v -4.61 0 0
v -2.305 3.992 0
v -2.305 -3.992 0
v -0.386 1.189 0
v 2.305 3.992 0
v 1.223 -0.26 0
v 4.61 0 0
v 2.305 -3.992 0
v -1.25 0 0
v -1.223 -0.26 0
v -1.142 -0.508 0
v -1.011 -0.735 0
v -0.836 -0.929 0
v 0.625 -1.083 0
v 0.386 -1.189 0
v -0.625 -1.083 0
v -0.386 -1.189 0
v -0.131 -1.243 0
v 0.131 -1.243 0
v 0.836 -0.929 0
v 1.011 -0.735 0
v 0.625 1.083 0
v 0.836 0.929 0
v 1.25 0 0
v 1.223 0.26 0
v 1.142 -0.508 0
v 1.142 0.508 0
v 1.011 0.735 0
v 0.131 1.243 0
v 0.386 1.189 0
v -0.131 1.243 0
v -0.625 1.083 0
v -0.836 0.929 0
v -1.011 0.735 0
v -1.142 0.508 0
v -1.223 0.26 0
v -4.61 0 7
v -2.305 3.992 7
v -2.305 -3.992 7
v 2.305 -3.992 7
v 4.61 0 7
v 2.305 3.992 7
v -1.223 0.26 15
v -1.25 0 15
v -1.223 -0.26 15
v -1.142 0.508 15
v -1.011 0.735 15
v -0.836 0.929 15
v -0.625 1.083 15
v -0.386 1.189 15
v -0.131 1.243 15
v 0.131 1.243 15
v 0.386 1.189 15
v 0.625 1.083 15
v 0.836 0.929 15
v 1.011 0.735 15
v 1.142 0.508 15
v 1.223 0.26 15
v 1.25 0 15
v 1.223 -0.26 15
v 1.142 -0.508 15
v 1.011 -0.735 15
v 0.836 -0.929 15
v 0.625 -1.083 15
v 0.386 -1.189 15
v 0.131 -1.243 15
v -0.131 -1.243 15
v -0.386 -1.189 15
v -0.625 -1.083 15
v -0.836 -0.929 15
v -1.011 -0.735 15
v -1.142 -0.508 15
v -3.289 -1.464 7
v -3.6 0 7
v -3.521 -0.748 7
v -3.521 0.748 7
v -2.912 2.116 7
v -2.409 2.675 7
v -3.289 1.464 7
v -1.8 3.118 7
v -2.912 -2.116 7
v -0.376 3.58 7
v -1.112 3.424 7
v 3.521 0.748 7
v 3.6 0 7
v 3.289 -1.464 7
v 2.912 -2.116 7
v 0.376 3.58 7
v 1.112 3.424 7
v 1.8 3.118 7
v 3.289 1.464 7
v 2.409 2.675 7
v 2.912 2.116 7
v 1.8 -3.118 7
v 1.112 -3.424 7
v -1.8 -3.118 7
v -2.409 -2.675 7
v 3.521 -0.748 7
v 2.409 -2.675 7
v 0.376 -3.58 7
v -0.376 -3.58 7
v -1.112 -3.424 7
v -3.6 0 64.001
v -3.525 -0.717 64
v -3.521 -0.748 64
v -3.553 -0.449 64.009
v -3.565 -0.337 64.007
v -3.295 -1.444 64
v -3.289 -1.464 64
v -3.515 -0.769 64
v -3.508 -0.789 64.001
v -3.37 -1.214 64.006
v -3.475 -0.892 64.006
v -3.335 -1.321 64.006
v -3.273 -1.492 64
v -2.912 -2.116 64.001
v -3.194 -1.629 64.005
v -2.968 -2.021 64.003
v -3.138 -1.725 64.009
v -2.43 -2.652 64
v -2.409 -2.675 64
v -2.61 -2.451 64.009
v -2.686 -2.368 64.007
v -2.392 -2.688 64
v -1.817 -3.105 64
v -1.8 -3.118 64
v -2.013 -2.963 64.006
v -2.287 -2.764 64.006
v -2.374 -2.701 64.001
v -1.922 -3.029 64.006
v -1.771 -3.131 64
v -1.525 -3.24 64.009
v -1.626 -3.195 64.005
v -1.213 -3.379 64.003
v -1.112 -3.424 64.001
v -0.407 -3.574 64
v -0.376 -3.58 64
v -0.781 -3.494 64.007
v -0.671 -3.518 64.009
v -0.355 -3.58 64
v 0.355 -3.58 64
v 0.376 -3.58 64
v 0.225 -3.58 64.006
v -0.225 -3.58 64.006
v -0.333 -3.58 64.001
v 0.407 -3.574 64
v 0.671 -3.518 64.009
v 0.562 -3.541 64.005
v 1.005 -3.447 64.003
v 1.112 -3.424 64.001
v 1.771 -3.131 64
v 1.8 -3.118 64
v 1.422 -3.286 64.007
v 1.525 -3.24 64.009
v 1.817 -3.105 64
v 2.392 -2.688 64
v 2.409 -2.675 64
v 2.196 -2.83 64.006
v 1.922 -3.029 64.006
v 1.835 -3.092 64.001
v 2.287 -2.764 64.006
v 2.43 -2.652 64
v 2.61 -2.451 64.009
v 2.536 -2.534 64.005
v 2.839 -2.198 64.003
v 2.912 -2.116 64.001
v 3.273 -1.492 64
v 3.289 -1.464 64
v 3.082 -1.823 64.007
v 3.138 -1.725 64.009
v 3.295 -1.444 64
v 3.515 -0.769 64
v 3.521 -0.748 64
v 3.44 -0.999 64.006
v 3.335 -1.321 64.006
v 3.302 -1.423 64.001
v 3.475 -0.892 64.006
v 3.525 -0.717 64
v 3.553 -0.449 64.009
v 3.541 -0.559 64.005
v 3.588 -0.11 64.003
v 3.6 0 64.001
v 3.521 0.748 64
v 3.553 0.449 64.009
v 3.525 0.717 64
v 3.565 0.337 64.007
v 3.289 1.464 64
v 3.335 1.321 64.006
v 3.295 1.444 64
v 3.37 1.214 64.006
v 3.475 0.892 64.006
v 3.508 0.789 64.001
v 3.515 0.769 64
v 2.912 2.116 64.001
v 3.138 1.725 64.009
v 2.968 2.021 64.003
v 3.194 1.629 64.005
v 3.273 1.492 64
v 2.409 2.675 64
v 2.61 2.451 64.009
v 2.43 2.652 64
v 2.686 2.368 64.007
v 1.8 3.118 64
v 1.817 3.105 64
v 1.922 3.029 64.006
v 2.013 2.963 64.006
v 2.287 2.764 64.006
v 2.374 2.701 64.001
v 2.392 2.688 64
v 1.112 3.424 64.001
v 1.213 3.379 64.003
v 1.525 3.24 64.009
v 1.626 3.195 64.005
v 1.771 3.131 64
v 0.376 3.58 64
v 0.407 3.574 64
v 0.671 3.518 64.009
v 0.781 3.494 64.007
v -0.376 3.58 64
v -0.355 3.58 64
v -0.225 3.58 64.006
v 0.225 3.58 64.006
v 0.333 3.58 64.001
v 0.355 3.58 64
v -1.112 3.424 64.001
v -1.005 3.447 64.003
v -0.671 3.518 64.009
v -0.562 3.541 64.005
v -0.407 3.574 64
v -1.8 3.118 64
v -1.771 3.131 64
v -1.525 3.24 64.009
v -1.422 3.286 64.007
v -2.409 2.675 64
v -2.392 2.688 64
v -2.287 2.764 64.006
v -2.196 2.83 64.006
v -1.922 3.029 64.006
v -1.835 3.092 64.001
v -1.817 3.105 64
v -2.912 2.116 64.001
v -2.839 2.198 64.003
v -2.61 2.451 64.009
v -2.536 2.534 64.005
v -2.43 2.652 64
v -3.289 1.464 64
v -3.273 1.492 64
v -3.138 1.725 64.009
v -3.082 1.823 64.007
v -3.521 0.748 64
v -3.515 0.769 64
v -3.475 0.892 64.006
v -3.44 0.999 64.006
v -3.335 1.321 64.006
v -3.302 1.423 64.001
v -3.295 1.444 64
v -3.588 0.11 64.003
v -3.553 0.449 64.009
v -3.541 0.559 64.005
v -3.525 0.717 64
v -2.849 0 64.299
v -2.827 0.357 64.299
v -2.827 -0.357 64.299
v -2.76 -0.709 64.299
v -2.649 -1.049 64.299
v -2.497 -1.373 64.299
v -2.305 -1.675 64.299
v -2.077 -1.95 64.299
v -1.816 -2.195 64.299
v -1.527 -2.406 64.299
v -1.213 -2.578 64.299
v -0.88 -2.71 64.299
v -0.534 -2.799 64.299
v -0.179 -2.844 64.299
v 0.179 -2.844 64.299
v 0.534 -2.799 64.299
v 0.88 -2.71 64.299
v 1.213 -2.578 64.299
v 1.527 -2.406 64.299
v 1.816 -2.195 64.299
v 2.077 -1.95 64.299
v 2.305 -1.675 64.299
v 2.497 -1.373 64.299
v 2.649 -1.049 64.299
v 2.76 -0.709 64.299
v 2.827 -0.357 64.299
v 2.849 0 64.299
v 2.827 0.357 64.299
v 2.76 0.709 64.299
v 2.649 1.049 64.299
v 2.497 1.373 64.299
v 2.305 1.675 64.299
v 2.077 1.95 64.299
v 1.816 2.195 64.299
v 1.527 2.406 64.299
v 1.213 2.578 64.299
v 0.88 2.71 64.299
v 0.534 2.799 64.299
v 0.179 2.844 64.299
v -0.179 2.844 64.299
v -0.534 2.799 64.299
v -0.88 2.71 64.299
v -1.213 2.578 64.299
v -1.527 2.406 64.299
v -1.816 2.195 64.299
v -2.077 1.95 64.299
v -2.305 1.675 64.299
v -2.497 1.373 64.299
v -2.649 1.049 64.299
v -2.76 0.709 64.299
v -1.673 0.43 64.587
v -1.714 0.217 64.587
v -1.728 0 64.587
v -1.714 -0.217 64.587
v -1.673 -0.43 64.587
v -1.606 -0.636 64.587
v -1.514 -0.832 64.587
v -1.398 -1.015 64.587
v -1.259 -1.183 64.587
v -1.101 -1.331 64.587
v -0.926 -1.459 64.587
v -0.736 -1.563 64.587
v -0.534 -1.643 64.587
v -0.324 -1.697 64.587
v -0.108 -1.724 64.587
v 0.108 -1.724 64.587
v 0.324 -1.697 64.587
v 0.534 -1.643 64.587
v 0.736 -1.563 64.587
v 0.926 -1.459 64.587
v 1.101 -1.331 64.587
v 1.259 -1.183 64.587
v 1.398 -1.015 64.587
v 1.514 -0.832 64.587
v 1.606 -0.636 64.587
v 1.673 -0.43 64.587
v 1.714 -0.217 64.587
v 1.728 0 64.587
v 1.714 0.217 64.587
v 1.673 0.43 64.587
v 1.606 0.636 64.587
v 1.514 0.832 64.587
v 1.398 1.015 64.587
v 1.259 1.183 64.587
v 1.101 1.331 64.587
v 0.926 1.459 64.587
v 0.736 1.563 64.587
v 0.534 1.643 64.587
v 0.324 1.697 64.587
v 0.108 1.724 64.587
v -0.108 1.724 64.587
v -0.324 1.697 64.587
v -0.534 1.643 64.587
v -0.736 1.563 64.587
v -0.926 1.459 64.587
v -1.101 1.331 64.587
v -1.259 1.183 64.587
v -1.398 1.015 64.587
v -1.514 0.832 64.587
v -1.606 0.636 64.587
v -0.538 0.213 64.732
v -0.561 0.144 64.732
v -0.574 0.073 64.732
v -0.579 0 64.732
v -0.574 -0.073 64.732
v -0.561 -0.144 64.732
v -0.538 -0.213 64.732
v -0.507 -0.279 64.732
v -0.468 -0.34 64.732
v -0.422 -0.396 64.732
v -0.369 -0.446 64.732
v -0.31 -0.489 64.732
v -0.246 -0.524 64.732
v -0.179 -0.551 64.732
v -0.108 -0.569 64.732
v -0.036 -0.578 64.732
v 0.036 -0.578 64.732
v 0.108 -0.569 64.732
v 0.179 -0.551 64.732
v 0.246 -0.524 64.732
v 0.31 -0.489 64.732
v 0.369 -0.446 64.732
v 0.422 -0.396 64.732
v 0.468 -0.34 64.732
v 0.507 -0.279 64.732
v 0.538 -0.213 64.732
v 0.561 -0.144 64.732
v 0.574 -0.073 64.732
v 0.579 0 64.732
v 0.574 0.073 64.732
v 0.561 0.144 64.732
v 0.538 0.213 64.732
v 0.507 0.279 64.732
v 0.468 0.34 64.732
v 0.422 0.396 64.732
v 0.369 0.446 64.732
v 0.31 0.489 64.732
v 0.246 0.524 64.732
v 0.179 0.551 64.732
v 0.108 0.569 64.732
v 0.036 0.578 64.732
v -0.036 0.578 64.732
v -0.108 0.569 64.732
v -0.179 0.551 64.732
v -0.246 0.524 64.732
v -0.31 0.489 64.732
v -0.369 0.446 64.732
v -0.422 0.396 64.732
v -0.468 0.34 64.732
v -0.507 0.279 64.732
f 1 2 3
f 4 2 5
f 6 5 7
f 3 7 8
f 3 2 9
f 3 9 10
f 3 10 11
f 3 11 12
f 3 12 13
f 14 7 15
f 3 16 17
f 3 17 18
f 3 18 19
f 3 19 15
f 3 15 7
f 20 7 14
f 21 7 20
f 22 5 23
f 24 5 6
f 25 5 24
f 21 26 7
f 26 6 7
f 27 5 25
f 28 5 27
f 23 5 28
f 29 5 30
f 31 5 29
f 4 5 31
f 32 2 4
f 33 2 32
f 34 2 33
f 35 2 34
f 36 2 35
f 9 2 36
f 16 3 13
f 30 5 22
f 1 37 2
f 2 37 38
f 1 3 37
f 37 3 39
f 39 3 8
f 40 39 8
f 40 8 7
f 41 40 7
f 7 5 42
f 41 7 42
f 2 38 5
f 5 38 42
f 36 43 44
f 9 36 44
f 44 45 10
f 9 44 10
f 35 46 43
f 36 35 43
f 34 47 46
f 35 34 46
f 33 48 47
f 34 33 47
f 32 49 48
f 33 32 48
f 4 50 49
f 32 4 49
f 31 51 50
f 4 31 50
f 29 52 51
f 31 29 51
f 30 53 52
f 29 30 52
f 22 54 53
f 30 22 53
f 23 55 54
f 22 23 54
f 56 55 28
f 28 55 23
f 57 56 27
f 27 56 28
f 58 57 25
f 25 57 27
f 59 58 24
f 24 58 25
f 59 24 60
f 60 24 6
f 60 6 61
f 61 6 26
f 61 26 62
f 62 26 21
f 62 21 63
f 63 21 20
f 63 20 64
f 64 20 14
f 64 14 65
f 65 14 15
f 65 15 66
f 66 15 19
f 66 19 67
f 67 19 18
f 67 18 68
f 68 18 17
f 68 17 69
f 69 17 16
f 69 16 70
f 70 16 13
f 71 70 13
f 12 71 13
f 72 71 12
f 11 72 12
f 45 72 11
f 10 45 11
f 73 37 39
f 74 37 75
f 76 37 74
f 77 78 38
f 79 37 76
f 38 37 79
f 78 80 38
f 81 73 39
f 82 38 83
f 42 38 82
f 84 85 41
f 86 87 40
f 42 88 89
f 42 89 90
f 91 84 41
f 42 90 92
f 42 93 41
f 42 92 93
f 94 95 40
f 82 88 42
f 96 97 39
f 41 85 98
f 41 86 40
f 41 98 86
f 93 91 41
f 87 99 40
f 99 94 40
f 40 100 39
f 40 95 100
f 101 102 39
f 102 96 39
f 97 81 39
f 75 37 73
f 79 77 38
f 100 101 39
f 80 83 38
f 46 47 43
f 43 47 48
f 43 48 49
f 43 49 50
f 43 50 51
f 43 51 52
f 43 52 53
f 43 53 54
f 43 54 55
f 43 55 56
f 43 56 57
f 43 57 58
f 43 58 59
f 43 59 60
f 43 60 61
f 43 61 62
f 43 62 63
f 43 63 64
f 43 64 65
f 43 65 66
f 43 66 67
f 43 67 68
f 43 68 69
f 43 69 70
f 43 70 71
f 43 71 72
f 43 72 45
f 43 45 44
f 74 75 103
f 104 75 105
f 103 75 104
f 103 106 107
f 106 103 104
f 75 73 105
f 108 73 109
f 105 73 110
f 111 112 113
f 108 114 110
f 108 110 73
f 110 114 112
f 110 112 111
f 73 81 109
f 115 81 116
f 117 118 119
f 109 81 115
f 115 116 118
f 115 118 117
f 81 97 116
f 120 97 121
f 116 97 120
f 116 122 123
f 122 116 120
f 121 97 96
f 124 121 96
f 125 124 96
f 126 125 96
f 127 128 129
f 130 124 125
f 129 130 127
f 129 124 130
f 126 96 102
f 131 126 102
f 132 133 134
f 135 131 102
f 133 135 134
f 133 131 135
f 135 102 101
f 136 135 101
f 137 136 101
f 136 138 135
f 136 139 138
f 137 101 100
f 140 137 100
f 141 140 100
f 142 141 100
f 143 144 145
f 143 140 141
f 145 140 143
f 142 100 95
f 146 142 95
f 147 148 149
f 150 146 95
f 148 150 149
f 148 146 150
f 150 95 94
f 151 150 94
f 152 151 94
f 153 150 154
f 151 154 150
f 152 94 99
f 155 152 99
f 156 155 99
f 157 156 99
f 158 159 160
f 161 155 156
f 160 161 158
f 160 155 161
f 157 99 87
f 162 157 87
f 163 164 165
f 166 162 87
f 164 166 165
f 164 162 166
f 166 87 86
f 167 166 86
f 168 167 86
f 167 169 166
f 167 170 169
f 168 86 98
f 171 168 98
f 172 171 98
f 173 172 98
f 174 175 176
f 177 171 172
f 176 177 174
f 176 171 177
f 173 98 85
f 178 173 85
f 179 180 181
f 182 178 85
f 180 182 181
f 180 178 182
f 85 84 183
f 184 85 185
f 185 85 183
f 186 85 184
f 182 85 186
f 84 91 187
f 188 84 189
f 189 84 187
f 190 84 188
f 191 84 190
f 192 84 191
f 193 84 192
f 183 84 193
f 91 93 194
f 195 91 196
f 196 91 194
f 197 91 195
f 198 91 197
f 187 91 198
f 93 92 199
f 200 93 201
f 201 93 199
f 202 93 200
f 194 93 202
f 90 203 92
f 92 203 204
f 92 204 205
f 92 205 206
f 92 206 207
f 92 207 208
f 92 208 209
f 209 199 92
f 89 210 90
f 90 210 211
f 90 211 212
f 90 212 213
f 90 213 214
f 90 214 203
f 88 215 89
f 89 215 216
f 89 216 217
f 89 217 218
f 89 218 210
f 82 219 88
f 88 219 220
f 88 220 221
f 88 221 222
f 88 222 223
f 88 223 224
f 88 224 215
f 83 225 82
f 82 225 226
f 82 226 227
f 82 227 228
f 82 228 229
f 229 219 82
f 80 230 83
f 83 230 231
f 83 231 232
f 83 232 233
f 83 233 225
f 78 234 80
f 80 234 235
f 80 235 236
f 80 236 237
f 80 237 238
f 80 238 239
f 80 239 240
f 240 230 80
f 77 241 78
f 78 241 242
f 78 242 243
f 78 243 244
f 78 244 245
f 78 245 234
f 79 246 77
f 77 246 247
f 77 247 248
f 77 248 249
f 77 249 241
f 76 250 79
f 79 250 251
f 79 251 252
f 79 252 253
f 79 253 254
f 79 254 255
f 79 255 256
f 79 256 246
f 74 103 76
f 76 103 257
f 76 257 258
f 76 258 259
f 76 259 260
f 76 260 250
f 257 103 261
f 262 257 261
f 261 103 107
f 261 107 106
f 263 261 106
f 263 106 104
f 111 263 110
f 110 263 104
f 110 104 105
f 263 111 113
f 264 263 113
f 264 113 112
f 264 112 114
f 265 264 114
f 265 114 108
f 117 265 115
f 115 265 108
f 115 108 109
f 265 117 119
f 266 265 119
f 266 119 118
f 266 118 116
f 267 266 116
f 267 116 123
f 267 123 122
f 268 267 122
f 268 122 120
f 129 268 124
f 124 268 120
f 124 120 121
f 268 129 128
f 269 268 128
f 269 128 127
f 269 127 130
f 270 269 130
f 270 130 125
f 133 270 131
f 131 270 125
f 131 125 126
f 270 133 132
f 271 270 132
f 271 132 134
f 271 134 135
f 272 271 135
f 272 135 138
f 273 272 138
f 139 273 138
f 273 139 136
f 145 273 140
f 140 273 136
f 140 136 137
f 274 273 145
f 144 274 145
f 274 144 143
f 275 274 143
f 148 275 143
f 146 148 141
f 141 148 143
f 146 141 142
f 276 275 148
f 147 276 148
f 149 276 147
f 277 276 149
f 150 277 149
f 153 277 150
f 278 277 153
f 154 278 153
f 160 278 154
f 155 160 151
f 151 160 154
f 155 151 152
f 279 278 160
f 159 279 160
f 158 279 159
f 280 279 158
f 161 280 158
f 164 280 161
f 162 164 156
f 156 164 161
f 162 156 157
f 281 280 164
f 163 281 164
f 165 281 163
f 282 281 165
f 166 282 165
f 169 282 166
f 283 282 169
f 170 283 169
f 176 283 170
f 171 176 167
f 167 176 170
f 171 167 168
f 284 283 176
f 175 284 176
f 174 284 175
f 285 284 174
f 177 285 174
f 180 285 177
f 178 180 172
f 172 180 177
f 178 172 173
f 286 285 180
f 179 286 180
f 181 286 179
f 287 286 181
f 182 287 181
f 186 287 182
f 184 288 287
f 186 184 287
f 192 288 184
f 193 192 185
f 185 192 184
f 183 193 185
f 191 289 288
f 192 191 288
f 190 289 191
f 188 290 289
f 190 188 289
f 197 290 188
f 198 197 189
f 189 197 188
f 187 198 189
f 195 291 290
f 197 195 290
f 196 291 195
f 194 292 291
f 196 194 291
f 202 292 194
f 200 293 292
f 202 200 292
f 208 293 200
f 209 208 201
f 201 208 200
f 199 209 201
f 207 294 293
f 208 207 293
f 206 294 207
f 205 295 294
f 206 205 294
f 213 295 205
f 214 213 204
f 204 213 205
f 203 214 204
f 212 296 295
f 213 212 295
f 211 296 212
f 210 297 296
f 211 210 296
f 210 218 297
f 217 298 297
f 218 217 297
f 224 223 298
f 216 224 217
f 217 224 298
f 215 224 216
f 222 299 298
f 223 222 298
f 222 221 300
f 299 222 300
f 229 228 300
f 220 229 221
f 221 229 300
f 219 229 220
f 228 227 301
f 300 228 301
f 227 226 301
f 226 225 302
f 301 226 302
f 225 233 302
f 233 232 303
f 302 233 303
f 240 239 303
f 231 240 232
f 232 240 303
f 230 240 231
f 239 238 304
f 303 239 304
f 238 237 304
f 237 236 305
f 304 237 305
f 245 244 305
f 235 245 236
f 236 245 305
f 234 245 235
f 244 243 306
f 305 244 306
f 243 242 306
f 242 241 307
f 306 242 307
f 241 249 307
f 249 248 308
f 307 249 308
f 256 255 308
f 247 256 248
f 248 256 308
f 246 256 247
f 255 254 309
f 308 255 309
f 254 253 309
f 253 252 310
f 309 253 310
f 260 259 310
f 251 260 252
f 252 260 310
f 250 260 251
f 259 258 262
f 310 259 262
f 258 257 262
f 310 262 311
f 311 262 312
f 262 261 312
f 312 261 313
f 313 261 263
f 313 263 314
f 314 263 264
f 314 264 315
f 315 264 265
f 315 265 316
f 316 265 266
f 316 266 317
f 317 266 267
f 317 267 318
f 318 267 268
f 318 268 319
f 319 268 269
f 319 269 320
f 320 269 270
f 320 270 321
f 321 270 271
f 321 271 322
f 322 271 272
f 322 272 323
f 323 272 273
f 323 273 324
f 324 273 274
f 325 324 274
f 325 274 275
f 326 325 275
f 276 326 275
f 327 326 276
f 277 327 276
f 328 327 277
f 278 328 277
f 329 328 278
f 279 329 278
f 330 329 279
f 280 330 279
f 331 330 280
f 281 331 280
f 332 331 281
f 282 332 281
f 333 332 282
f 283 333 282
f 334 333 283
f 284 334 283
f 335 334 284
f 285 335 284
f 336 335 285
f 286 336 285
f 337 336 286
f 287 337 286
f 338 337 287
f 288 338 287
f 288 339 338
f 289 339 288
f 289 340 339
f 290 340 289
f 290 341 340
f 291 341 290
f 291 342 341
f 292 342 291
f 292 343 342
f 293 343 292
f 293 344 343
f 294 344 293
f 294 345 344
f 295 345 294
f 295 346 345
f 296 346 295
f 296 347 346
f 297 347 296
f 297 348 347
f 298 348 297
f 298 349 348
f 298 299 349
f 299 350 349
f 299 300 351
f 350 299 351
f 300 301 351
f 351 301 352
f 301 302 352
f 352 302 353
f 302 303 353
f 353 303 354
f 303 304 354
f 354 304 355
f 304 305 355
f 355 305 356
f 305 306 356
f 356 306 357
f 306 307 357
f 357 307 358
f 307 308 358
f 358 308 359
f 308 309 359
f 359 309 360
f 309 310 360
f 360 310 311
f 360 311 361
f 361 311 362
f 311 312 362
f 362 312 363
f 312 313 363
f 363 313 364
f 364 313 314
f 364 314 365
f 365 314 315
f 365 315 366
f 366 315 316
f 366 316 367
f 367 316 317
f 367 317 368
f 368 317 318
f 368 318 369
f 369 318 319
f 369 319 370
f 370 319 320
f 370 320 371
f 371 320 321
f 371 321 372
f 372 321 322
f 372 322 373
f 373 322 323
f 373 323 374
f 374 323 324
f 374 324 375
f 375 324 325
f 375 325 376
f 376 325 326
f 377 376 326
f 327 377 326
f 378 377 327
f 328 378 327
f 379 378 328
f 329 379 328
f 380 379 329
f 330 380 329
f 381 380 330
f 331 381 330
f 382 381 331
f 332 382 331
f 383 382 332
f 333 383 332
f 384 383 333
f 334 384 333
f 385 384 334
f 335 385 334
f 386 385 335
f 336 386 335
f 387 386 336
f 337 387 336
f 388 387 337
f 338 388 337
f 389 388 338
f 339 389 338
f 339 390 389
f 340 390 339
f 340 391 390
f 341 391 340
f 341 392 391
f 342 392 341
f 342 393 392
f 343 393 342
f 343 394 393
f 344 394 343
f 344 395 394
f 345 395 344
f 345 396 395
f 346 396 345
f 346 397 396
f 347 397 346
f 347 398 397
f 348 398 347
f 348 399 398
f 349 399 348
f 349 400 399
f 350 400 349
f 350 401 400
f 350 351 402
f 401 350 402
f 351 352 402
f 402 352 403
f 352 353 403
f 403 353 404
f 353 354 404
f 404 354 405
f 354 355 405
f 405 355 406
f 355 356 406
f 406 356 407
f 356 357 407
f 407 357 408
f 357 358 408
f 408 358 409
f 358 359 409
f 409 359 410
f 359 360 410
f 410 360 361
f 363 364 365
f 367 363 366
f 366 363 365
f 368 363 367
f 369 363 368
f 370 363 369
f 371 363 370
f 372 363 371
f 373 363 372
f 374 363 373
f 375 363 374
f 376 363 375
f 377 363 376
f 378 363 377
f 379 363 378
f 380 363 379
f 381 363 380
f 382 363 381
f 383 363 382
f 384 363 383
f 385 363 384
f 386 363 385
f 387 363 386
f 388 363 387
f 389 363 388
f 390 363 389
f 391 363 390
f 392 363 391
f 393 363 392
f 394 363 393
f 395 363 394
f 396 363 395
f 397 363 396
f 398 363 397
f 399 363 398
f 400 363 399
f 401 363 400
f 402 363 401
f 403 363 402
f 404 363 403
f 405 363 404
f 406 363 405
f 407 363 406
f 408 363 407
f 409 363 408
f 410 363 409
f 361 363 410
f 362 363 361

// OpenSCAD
difference(){
union(){
cylinder(r=4.61,h=7,$fn=6);
translate([0,0,7])cylinder(r=3.6,h=57,$fn=30);
}
cylinder(r=1.25,h=15,$fn=30);
}

intersection(){
translate([0,0,57+7-4.61*2+0.75])sphere(r=4.61*2,$fn=50);
translate([0,0,7+57])cylinder(r=3.6,h=570,$fn=30);
}
